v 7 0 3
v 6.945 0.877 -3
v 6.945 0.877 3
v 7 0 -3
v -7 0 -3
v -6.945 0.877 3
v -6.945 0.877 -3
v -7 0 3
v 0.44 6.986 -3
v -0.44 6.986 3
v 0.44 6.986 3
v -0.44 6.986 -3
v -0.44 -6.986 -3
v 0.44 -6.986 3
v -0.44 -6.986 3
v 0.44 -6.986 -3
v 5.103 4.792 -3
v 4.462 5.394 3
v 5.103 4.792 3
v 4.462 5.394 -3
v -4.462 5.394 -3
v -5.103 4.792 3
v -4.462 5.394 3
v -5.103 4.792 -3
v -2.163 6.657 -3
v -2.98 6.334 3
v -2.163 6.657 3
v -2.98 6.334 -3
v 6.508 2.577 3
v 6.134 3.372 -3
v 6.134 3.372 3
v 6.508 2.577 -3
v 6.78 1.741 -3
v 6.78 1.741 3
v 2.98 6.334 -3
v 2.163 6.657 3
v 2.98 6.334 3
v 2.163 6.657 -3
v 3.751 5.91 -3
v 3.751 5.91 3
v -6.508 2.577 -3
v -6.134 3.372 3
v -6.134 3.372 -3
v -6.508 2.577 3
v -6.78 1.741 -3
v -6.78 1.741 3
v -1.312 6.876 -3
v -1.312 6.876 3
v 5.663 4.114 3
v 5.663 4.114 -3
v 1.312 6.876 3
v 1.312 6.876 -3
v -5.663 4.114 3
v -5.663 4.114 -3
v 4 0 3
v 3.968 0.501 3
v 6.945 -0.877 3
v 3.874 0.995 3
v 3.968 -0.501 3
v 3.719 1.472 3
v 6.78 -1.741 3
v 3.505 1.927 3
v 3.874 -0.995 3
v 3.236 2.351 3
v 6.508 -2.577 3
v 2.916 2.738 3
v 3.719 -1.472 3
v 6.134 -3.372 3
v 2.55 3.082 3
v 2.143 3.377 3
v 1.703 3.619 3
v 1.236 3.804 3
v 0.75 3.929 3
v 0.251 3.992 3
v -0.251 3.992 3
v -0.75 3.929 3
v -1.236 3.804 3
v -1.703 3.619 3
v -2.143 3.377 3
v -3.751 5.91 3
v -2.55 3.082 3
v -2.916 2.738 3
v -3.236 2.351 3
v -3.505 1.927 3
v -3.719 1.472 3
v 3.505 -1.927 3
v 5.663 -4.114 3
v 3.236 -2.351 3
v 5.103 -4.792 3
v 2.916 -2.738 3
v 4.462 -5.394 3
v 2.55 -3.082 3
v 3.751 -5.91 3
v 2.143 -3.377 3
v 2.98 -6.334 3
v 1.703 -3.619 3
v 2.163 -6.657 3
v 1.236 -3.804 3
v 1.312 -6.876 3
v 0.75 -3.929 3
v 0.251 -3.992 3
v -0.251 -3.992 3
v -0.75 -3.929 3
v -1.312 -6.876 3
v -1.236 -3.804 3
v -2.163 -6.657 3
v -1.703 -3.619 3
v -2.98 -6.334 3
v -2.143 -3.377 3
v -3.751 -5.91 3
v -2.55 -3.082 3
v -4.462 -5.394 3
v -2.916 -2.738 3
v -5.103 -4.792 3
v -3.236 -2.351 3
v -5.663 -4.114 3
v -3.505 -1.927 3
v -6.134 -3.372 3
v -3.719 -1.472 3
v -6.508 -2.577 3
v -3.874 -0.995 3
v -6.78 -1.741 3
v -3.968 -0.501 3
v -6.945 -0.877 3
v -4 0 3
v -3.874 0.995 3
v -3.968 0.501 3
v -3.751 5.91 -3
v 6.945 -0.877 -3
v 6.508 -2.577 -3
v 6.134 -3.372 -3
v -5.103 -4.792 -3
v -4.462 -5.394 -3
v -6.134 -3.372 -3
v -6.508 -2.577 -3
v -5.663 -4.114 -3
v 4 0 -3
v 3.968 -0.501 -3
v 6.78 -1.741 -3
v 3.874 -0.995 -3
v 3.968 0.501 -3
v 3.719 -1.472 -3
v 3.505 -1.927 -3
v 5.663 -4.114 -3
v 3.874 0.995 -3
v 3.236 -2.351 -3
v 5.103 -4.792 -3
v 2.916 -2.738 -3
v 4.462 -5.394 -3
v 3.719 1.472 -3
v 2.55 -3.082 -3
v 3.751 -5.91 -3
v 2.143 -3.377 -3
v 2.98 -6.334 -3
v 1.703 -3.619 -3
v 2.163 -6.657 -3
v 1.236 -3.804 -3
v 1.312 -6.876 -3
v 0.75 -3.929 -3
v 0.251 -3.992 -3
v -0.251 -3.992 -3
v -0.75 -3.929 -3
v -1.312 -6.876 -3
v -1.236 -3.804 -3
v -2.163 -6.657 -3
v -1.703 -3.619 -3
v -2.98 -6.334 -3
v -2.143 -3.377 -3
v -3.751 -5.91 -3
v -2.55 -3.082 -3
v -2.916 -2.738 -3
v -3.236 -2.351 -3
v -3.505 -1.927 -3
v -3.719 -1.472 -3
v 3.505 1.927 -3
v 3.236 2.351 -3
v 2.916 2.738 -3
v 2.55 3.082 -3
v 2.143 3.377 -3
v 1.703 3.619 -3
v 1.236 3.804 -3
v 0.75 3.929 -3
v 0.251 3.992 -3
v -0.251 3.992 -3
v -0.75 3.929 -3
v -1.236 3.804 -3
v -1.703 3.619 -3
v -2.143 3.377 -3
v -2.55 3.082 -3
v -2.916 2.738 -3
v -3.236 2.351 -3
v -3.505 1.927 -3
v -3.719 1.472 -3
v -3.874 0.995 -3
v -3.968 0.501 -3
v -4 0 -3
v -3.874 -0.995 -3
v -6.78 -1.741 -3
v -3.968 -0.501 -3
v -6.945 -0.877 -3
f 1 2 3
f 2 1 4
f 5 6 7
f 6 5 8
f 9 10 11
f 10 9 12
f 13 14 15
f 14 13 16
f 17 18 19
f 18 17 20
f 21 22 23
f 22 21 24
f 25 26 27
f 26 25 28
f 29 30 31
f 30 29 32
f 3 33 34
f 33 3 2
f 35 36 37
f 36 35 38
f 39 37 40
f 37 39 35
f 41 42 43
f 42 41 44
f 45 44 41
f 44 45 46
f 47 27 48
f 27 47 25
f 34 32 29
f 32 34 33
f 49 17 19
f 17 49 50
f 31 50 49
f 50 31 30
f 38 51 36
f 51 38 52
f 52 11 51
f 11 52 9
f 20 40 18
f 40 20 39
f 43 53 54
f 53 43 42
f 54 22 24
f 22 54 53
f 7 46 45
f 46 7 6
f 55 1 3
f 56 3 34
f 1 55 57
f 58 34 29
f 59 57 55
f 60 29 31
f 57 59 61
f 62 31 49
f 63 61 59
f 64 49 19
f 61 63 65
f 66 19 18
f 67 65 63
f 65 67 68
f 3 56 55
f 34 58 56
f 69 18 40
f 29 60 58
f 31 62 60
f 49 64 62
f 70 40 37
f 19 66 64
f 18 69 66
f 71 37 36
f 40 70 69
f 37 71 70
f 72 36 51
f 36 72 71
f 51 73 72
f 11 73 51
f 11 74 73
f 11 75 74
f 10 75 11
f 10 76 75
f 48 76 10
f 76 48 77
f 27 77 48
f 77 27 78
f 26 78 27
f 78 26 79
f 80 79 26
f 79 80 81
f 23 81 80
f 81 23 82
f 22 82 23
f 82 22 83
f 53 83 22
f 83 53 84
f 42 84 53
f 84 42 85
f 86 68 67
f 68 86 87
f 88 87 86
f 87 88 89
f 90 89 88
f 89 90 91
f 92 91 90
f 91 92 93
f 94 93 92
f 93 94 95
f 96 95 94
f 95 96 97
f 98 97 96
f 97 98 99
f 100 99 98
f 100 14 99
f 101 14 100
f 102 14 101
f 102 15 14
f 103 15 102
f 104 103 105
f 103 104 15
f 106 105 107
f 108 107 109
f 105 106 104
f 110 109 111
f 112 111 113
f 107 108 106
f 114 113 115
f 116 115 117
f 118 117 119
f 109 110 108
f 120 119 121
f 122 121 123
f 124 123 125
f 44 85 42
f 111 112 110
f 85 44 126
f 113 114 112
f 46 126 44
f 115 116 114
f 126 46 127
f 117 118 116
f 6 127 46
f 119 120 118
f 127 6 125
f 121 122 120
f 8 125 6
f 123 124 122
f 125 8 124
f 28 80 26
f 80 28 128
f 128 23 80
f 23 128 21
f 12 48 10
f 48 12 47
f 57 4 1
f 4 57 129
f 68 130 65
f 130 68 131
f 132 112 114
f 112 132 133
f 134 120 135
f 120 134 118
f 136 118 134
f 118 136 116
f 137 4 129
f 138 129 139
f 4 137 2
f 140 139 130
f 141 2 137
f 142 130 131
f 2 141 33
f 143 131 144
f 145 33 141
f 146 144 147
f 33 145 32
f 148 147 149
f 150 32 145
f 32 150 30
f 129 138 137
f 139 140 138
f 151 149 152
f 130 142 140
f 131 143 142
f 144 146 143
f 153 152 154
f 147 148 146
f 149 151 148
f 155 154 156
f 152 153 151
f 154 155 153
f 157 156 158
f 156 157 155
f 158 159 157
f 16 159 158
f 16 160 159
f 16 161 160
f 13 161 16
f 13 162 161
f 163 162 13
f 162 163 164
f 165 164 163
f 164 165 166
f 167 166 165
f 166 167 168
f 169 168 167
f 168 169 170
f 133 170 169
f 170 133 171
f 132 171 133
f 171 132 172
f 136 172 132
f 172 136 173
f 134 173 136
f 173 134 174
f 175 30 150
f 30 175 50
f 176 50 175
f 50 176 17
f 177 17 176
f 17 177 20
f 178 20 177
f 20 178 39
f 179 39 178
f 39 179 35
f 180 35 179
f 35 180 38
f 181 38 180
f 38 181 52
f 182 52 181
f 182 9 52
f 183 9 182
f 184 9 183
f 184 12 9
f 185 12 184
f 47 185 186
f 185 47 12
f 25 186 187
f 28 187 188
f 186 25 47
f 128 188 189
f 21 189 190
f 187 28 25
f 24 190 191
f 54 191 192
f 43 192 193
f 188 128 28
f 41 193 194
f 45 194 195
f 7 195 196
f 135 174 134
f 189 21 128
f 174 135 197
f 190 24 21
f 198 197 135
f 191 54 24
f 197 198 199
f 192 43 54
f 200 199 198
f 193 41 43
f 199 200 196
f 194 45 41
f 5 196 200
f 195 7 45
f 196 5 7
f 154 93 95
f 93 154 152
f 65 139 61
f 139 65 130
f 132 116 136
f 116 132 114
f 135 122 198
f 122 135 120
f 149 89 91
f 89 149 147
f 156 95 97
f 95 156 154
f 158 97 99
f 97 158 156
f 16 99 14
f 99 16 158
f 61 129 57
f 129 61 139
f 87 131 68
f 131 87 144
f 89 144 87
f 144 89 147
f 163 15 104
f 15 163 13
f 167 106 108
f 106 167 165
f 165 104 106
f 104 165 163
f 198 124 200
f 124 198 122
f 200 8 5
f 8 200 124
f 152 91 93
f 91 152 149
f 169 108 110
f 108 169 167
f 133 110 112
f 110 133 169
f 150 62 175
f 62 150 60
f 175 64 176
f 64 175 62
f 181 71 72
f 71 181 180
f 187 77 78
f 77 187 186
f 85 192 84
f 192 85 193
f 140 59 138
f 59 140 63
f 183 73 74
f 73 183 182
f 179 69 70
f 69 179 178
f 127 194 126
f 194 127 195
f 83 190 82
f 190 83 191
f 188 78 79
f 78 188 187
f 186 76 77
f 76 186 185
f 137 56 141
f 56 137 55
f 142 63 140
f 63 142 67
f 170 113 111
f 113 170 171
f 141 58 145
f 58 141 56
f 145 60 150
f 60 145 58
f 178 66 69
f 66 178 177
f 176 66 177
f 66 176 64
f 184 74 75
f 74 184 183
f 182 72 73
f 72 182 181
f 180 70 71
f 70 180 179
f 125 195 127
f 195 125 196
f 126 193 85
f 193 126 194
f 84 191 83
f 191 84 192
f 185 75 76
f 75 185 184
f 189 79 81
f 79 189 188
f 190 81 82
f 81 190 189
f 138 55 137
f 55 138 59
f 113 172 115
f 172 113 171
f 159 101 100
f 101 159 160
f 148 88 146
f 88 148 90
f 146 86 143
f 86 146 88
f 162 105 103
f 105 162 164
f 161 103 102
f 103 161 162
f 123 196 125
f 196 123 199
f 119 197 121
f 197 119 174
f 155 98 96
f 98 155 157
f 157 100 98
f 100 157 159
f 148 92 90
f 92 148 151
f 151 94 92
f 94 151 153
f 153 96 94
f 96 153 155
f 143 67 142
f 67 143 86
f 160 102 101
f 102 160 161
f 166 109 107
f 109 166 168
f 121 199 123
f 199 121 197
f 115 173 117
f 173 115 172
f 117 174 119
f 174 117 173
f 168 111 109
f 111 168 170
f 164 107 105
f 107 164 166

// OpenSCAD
$fn = 50;


difference() {
	union() {
		translate(v = [0, 0, -3.0000000000]) {
			cylinder(h = 6, r = 7.0000000000);
		}
	}
	union() {
		translate(v = [0, 0, -100.0000000000]) {
			cylinder(h = 200, r = 4);
		}
	}
}
